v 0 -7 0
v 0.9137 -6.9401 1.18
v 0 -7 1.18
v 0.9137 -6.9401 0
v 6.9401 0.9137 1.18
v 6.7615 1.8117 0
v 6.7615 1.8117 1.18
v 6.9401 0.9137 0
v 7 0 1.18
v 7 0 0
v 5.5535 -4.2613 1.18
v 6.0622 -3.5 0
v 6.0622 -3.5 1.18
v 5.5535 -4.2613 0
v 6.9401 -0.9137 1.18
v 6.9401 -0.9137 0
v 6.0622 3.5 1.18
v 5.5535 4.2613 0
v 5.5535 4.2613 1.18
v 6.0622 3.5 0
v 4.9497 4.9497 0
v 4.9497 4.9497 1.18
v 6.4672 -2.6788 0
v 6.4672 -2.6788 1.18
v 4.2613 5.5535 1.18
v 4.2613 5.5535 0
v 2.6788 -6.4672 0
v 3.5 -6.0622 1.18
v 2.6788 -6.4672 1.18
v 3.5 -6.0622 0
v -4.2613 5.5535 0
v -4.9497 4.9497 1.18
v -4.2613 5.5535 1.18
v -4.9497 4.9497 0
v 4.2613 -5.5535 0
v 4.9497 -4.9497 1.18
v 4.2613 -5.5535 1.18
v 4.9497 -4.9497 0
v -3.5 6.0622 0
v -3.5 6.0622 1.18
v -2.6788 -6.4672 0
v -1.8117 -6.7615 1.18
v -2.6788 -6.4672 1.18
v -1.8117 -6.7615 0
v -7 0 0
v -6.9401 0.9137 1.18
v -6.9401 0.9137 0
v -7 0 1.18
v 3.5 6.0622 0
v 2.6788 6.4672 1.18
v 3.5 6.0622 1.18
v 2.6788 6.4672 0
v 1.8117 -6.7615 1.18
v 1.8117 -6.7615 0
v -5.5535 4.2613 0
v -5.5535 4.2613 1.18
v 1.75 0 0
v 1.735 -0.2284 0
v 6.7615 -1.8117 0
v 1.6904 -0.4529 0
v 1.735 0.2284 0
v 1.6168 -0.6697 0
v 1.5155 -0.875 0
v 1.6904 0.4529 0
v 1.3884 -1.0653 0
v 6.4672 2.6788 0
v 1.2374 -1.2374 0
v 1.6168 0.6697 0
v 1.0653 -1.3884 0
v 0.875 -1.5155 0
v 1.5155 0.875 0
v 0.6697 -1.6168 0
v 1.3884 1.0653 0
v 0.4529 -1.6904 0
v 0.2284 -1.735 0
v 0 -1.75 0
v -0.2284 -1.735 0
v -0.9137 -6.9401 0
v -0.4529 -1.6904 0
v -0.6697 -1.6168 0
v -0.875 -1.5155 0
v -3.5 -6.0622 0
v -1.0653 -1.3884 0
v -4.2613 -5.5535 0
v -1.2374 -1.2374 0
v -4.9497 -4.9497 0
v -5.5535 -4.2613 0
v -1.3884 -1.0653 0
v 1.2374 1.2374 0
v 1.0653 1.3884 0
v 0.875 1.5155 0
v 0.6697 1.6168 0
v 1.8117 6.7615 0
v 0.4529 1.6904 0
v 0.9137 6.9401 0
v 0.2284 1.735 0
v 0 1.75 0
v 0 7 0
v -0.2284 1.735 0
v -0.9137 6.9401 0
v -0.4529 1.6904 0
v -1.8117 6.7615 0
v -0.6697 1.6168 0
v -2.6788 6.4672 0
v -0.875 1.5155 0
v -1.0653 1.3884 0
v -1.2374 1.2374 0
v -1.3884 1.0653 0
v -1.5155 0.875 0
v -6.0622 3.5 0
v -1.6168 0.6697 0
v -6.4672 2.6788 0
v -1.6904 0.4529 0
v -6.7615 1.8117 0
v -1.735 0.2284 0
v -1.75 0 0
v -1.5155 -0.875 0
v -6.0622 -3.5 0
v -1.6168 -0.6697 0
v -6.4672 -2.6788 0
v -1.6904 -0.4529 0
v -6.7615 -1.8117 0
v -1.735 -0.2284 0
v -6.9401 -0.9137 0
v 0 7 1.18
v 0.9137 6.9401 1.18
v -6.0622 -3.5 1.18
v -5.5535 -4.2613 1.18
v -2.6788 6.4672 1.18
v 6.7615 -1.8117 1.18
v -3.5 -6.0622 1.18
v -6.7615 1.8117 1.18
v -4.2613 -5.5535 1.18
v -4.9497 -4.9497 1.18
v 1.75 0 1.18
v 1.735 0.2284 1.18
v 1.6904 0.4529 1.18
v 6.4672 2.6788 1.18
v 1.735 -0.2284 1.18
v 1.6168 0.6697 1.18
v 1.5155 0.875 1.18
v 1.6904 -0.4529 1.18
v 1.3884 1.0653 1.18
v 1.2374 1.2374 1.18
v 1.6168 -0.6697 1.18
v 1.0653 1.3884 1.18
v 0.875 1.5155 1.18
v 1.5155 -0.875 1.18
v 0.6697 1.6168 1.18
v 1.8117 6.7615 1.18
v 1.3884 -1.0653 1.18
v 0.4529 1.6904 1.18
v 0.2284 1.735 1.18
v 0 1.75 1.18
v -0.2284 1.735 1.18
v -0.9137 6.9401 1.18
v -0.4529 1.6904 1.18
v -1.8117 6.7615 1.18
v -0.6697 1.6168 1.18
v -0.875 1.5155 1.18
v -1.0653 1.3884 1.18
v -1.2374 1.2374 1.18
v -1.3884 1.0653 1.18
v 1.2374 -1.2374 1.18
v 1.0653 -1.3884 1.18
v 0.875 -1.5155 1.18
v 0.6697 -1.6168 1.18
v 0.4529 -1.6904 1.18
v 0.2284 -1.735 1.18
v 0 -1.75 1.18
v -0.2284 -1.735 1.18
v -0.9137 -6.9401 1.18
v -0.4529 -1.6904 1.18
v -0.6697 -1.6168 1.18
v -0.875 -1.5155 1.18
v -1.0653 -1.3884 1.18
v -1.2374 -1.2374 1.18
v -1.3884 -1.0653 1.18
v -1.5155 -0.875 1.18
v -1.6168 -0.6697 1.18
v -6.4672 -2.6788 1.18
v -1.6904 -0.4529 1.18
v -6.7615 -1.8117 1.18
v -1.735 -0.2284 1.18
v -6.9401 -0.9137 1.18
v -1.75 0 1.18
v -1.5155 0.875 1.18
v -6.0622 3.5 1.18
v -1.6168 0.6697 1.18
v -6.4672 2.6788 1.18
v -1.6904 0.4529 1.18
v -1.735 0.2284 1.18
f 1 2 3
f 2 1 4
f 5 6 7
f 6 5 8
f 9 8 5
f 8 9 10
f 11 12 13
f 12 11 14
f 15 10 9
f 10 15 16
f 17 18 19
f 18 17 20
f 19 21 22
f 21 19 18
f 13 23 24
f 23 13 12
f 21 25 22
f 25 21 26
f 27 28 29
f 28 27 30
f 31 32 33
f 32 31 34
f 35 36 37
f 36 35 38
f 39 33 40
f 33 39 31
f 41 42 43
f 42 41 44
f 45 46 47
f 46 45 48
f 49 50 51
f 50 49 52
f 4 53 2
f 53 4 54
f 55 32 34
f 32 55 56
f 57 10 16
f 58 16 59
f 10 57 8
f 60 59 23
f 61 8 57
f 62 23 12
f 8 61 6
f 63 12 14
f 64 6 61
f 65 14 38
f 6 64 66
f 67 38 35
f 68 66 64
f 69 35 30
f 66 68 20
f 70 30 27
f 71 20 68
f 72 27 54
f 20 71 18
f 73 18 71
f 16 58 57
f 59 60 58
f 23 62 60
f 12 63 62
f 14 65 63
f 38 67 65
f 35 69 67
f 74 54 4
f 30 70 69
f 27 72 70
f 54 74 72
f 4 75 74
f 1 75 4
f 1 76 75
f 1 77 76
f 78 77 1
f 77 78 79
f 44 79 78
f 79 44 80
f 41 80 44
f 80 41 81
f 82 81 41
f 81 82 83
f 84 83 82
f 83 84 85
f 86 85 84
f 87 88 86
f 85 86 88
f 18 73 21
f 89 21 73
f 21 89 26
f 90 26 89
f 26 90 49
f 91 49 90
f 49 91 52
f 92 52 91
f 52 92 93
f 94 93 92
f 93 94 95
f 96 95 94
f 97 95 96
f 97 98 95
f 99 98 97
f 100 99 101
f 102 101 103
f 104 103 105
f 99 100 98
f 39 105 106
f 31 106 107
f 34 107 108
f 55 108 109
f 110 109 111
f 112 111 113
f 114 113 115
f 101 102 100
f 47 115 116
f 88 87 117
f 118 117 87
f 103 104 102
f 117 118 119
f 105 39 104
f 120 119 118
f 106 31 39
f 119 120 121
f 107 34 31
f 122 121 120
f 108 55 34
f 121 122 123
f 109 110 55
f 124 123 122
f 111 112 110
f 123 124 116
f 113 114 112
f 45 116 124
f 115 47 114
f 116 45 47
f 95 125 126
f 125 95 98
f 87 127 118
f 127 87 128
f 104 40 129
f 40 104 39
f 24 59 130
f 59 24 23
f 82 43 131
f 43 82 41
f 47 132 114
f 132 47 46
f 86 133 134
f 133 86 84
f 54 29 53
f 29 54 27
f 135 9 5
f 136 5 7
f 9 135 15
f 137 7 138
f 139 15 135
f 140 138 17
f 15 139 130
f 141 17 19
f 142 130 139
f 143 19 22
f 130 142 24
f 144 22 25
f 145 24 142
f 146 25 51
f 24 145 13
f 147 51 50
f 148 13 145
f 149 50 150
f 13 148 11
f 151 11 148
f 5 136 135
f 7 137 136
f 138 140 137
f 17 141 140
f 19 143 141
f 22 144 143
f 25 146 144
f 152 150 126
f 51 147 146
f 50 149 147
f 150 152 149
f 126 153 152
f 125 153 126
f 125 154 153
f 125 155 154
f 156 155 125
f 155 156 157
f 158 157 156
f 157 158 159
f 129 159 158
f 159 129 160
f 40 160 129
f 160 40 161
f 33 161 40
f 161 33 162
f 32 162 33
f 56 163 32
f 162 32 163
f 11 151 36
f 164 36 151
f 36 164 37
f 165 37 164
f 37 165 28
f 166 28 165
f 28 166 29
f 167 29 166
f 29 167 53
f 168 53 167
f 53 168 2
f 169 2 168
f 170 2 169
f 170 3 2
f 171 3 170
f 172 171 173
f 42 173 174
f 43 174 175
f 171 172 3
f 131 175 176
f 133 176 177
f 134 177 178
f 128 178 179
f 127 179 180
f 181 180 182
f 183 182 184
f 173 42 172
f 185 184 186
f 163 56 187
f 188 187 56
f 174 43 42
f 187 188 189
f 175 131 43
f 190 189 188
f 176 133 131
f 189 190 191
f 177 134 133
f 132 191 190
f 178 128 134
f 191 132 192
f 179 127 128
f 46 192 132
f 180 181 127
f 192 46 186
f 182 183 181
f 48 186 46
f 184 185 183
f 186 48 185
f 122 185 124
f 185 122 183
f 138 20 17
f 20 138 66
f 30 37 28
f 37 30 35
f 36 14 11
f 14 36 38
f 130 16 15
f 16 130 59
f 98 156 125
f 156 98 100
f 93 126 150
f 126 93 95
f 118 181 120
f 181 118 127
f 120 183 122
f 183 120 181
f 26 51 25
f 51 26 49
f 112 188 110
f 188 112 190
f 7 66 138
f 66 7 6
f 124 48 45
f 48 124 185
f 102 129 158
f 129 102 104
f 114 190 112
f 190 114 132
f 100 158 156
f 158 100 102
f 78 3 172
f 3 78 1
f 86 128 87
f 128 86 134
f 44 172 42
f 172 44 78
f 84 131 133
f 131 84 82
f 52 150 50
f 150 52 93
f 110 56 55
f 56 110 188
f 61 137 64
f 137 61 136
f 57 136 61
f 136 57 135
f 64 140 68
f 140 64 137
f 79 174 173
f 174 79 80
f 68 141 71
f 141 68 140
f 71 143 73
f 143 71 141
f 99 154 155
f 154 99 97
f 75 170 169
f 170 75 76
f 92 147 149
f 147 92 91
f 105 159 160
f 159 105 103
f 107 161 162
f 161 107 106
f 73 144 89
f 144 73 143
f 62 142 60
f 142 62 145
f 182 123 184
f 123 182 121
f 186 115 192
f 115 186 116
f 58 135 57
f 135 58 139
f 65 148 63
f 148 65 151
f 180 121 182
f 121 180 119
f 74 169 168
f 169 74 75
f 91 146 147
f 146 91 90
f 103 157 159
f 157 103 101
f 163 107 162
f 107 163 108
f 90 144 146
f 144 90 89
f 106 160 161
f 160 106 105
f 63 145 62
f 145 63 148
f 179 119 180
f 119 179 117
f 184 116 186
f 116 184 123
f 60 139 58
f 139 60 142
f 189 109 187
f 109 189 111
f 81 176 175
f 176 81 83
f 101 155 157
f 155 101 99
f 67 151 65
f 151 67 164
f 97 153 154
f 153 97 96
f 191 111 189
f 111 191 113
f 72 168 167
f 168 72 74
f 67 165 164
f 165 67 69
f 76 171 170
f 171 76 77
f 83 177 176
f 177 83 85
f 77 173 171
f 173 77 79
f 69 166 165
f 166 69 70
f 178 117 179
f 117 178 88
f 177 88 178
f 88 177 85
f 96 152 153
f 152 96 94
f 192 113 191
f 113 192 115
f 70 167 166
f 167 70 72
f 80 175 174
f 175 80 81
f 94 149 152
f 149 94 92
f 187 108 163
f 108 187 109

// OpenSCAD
// file: parameters.scad
// =============================================================================
// Gen-AF Stacked dual-stator mid-rotor Halbach copper-max — WOUND-AWARE
// TWO wound pancake stators | ONE mid dual-face Halbach rotor | outer endbells
// Beats Gen-AF: thinner m2m 5.11, larger copper window, 135 t / coil
// =============================================================================

wire_awg            = 26;
wire_od             = 0.45;
turns               = 135;      // 9 coils/stator ×2 = 18 ×135 ×~0.118 ≈ 287 m
fill                = 0.70;
layers_per_face     = 2;
wind_build_axial    = layers_per_face * wire_od * fill;   // 0.63
wind_build_radial   = 2.8 * wire_od * fill;               // 0.882

coil_id_r           = 20.0;     // larger than Gen-AF 21–60
coil_od_r           = 62.0;
span_deg            = 34.0;     // 9 stations × 40°
former_web          = 1.55;
flange_t            = 0.60;
wall                = 1.2;
slot_w              = 2.4;
mount_hole          = 3.5;
tab_len             = 7.0;

former_bare_h       = former_web + 2 * flange_t;            // 2.75
coil_envelope_h     = former_bare_h + 2 * wind_build_axial; // 4.01

run_clear           = 0.55;
gap_spacer_h        = run_clear + wind_build_axial;         // 1.18
m2m                 = coil_envelope_h + 2 * run_clear;      // 5.11 per gap (beats Gen-AF 5.46)

coil_stations       = 9;        // per stator; ×2 = 18 total
bay_r_in            = coil_id_r - 2.0 - wind_build_radial;
bay_r_out           = coil_od_r + 2.0 + wind_build_radial;
bay_span            = span_deg + 4.0;
bay_offset          = 2.0;
bay_depth           = former_bare_h + wind_build_axial;
stator_back_web     = 2.0;
stator_thick        = bay_depth + stator_back_web;
stator_od           = 156.0;
shaft_clear_stator  = 40.0;
coil_mount_r        = 30.0;

large_pocket_d      = 20.3;
small_pocket_d      = 5.3;
pocket_h            = 5.2;
large_n             = 8;
R_large             = 52.0;
R_small_inner       = 40.0;
R_small_mid         = 52.0;
R_small_outer       = 64.0;
carrier_od          = 152.0;
mid_carrier_thick   = 12.0;
hub_h               = 10.0;
hub_od              = 30.0;
rotor_b_offset_deg  = 22.5;

shaft_bore          = 8.35;
bearing_d           = 21.85;
bearing_h           = 7.2;
m3_clear            = 3.5;
bolt_r_inner        = 36.0;
bolt_n_inner        = 6;
flange_bolt_r       = 72.0;
flange_bolt_n       = 6;
brace_r             = 68.0;
brace_d             = 4.3;
brace_n             = 4;

spacer_pad_od       = 14.0;
spacer_pad_id       = m3_clear;
endbell_od          = 156.0;
endbell_thick       = 8.0;
endbell_shaft_clear = 10.0;

$fn = 64;
// main file
// Gen-AF gap spacer — h = run_clear + wind_build_axial; print ×18
include <parameters.scad>;
$fn = 48;
difference() {
    cylinder(d=spacer_pad_od, h=gap_spacer_h);
    translate([0, 0, -0.1]) cylinder(d=spacer_pad_id, h=gap_spacer_h + 0.2);
}
